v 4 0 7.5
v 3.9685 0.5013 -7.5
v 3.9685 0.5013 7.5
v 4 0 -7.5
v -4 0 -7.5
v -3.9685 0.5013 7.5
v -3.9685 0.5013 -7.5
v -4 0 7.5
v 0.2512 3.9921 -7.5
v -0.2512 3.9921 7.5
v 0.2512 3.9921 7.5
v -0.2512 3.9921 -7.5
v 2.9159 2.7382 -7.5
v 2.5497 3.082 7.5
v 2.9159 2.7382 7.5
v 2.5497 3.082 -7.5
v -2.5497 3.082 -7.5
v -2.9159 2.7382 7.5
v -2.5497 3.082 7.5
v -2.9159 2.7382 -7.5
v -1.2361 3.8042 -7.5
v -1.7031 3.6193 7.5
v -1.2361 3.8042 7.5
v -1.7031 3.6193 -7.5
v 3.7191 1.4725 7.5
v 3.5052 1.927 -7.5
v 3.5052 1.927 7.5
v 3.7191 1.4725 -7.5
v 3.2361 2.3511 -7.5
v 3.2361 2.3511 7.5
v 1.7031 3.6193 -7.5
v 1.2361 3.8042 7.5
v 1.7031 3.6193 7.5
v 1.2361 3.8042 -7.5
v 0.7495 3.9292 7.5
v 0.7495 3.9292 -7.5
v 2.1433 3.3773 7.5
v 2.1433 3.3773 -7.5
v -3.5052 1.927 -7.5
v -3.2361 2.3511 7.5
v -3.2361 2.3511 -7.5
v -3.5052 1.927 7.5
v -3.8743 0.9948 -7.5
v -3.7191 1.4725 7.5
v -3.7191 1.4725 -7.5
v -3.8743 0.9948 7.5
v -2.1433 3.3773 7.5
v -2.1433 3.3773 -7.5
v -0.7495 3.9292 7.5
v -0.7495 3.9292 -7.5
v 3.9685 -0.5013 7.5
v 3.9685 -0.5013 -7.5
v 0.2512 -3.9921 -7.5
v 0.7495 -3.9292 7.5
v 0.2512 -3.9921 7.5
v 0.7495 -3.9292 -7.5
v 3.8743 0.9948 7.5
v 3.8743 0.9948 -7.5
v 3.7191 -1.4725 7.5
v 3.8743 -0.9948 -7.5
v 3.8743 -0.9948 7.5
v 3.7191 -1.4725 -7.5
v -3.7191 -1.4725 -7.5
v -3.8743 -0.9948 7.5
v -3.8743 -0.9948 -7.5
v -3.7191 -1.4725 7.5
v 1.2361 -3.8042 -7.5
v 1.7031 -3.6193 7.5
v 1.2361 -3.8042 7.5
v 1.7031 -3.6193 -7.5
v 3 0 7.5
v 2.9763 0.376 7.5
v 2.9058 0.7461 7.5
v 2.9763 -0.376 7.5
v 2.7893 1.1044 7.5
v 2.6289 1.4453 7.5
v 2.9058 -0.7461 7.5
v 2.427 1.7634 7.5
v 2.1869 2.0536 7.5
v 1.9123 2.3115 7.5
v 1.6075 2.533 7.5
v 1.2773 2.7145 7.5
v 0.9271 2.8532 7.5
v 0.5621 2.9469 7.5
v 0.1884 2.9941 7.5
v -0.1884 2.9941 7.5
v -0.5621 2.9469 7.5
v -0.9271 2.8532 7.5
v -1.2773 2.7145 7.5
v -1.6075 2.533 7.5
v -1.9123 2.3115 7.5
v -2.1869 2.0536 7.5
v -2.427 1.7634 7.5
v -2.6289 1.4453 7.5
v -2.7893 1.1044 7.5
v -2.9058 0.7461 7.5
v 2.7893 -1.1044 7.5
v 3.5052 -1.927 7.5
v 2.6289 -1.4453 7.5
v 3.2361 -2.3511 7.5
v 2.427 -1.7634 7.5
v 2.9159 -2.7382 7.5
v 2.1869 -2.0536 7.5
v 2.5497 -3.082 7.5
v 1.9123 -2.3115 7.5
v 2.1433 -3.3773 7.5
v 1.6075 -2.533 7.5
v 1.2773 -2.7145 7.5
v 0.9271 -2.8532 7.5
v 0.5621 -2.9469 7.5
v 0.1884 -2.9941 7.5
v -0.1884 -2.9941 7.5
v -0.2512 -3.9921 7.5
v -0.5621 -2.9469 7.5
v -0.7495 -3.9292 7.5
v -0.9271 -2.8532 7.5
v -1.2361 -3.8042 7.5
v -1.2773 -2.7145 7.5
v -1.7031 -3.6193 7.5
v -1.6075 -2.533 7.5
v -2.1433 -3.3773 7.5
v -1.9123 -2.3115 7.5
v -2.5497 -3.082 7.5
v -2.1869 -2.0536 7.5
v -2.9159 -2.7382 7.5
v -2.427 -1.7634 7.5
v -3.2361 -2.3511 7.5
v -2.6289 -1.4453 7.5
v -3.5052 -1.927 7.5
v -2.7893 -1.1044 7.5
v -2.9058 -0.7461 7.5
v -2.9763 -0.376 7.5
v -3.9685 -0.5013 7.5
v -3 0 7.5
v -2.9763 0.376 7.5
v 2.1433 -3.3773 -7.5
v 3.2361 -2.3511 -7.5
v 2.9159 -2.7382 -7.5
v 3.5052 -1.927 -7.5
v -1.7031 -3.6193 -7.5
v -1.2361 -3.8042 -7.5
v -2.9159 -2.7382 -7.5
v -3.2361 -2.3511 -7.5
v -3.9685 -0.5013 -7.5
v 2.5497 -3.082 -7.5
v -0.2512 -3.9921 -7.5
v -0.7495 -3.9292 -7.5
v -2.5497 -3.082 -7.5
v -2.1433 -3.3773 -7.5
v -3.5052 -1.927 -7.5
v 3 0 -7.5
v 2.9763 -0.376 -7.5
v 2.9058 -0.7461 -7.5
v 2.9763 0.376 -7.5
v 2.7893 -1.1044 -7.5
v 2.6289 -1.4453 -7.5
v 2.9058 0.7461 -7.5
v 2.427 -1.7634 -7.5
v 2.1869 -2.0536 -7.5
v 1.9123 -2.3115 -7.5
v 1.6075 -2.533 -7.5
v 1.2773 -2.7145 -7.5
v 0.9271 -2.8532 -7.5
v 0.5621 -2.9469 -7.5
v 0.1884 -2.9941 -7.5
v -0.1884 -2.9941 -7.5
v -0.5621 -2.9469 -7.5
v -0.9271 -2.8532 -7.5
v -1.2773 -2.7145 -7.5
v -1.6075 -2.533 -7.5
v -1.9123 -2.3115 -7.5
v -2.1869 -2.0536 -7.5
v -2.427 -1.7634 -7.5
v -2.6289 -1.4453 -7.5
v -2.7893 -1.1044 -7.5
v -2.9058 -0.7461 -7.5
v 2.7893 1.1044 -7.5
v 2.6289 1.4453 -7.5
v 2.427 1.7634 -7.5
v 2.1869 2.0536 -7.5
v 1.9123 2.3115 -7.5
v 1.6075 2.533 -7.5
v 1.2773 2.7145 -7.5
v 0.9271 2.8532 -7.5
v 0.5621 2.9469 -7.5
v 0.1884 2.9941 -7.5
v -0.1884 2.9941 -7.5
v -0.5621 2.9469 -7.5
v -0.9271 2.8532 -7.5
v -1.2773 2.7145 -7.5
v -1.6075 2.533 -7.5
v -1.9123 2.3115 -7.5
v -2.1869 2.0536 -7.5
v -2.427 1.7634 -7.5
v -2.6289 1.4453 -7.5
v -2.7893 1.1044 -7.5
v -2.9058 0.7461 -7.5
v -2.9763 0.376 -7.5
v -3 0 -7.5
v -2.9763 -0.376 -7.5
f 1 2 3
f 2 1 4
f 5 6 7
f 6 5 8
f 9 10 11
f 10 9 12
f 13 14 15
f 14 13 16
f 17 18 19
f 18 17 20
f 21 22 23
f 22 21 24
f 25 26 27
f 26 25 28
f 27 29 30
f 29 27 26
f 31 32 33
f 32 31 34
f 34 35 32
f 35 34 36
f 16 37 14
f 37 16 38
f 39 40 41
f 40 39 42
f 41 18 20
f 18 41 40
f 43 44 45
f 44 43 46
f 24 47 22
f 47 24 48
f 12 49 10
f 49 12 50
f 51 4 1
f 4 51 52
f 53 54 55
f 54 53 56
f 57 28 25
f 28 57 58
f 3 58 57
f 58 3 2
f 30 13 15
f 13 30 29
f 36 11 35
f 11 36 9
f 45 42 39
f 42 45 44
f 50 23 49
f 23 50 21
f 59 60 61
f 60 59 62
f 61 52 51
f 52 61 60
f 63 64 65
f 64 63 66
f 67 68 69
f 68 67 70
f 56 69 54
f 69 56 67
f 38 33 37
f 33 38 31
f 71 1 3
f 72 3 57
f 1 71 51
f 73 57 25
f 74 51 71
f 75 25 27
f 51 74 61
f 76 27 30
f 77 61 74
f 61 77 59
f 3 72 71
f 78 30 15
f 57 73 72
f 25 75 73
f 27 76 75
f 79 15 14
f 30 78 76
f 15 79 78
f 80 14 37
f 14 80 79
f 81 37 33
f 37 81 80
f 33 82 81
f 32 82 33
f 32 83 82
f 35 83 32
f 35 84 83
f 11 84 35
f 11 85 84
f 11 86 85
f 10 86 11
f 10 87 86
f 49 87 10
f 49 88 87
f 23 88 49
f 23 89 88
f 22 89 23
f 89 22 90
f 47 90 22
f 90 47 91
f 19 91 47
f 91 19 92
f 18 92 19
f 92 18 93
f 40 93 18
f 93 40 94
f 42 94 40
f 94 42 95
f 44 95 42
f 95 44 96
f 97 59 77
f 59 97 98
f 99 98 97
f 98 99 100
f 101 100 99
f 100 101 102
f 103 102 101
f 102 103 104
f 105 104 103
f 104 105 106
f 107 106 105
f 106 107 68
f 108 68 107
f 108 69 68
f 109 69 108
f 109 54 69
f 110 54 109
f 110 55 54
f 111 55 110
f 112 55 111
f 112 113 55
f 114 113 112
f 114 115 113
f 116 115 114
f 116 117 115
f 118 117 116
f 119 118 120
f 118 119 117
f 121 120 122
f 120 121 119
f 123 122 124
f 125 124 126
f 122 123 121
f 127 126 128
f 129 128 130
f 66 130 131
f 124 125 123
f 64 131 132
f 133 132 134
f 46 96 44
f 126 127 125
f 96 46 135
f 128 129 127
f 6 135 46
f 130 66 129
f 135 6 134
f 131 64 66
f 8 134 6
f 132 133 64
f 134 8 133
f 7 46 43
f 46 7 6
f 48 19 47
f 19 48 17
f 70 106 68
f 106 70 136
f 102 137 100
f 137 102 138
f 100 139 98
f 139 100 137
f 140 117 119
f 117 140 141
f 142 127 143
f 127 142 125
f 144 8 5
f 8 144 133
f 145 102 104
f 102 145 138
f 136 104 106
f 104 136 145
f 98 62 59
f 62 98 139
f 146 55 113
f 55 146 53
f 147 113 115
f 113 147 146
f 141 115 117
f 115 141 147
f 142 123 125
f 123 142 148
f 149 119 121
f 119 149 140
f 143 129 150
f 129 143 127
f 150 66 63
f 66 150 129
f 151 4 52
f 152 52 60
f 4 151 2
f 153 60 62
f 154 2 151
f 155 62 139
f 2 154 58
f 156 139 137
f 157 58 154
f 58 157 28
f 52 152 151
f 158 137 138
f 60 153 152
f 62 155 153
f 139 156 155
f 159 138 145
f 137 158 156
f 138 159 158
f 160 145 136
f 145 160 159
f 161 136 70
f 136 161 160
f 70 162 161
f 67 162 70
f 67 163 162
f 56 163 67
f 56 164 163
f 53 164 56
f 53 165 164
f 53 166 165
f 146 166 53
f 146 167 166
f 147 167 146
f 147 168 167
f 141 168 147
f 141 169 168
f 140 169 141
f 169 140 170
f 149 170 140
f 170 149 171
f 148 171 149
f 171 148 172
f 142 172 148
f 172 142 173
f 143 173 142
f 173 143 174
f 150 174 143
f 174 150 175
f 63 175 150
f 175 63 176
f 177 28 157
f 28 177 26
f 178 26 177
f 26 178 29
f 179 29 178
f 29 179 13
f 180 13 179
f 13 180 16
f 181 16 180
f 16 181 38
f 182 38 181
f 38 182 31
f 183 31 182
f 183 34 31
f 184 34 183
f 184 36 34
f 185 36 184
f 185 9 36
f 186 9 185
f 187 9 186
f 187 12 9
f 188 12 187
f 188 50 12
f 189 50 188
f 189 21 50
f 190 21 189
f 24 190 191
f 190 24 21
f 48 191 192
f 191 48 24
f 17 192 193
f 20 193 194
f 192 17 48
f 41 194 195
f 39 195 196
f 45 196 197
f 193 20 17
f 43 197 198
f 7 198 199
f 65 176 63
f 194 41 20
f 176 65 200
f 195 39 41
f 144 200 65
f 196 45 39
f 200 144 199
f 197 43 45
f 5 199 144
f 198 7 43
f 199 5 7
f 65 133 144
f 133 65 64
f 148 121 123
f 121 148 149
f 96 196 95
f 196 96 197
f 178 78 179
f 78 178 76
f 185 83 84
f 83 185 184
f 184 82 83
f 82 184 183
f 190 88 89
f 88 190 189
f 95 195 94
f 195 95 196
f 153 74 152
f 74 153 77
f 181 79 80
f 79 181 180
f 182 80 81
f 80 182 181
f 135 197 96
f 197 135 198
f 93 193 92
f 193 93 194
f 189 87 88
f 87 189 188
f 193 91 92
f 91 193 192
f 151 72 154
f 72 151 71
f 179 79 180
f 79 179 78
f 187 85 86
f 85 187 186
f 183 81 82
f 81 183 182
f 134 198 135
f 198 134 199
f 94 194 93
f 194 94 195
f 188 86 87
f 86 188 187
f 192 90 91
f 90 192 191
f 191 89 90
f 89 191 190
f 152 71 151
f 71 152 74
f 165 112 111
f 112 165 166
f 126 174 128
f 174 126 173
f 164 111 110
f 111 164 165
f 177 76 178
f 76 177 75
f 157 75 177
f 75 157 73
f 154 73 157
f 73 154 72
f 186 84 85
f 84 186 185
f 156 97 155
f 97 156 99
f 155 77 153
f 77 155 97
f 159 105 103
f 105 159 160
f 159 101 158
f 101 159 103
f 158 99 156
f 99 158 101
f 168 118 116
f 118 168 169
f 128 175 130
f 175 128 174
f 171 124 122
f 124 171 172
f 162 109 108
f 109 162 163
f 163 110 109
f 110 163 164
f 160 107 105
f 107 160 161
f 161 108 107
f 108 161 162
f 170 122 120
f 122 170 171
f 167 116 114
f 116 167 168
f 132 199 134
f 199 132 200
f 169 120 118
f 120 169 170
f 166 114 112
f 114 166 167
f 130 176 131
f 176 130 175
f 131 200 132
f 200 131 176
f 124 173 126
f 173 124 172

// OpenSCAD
$fn = 50;


difference() {
	union() {
		translate(v = [0, 0, -7.5000000000]) {
			cylinder(h = 15, r = 4.0000000000);
		}
	}
	union() {
		translate(v = [0, 0, -100.0000000000]) {
			cylinder(h = 200, r = 3.0000000000);
		}
	}
}
